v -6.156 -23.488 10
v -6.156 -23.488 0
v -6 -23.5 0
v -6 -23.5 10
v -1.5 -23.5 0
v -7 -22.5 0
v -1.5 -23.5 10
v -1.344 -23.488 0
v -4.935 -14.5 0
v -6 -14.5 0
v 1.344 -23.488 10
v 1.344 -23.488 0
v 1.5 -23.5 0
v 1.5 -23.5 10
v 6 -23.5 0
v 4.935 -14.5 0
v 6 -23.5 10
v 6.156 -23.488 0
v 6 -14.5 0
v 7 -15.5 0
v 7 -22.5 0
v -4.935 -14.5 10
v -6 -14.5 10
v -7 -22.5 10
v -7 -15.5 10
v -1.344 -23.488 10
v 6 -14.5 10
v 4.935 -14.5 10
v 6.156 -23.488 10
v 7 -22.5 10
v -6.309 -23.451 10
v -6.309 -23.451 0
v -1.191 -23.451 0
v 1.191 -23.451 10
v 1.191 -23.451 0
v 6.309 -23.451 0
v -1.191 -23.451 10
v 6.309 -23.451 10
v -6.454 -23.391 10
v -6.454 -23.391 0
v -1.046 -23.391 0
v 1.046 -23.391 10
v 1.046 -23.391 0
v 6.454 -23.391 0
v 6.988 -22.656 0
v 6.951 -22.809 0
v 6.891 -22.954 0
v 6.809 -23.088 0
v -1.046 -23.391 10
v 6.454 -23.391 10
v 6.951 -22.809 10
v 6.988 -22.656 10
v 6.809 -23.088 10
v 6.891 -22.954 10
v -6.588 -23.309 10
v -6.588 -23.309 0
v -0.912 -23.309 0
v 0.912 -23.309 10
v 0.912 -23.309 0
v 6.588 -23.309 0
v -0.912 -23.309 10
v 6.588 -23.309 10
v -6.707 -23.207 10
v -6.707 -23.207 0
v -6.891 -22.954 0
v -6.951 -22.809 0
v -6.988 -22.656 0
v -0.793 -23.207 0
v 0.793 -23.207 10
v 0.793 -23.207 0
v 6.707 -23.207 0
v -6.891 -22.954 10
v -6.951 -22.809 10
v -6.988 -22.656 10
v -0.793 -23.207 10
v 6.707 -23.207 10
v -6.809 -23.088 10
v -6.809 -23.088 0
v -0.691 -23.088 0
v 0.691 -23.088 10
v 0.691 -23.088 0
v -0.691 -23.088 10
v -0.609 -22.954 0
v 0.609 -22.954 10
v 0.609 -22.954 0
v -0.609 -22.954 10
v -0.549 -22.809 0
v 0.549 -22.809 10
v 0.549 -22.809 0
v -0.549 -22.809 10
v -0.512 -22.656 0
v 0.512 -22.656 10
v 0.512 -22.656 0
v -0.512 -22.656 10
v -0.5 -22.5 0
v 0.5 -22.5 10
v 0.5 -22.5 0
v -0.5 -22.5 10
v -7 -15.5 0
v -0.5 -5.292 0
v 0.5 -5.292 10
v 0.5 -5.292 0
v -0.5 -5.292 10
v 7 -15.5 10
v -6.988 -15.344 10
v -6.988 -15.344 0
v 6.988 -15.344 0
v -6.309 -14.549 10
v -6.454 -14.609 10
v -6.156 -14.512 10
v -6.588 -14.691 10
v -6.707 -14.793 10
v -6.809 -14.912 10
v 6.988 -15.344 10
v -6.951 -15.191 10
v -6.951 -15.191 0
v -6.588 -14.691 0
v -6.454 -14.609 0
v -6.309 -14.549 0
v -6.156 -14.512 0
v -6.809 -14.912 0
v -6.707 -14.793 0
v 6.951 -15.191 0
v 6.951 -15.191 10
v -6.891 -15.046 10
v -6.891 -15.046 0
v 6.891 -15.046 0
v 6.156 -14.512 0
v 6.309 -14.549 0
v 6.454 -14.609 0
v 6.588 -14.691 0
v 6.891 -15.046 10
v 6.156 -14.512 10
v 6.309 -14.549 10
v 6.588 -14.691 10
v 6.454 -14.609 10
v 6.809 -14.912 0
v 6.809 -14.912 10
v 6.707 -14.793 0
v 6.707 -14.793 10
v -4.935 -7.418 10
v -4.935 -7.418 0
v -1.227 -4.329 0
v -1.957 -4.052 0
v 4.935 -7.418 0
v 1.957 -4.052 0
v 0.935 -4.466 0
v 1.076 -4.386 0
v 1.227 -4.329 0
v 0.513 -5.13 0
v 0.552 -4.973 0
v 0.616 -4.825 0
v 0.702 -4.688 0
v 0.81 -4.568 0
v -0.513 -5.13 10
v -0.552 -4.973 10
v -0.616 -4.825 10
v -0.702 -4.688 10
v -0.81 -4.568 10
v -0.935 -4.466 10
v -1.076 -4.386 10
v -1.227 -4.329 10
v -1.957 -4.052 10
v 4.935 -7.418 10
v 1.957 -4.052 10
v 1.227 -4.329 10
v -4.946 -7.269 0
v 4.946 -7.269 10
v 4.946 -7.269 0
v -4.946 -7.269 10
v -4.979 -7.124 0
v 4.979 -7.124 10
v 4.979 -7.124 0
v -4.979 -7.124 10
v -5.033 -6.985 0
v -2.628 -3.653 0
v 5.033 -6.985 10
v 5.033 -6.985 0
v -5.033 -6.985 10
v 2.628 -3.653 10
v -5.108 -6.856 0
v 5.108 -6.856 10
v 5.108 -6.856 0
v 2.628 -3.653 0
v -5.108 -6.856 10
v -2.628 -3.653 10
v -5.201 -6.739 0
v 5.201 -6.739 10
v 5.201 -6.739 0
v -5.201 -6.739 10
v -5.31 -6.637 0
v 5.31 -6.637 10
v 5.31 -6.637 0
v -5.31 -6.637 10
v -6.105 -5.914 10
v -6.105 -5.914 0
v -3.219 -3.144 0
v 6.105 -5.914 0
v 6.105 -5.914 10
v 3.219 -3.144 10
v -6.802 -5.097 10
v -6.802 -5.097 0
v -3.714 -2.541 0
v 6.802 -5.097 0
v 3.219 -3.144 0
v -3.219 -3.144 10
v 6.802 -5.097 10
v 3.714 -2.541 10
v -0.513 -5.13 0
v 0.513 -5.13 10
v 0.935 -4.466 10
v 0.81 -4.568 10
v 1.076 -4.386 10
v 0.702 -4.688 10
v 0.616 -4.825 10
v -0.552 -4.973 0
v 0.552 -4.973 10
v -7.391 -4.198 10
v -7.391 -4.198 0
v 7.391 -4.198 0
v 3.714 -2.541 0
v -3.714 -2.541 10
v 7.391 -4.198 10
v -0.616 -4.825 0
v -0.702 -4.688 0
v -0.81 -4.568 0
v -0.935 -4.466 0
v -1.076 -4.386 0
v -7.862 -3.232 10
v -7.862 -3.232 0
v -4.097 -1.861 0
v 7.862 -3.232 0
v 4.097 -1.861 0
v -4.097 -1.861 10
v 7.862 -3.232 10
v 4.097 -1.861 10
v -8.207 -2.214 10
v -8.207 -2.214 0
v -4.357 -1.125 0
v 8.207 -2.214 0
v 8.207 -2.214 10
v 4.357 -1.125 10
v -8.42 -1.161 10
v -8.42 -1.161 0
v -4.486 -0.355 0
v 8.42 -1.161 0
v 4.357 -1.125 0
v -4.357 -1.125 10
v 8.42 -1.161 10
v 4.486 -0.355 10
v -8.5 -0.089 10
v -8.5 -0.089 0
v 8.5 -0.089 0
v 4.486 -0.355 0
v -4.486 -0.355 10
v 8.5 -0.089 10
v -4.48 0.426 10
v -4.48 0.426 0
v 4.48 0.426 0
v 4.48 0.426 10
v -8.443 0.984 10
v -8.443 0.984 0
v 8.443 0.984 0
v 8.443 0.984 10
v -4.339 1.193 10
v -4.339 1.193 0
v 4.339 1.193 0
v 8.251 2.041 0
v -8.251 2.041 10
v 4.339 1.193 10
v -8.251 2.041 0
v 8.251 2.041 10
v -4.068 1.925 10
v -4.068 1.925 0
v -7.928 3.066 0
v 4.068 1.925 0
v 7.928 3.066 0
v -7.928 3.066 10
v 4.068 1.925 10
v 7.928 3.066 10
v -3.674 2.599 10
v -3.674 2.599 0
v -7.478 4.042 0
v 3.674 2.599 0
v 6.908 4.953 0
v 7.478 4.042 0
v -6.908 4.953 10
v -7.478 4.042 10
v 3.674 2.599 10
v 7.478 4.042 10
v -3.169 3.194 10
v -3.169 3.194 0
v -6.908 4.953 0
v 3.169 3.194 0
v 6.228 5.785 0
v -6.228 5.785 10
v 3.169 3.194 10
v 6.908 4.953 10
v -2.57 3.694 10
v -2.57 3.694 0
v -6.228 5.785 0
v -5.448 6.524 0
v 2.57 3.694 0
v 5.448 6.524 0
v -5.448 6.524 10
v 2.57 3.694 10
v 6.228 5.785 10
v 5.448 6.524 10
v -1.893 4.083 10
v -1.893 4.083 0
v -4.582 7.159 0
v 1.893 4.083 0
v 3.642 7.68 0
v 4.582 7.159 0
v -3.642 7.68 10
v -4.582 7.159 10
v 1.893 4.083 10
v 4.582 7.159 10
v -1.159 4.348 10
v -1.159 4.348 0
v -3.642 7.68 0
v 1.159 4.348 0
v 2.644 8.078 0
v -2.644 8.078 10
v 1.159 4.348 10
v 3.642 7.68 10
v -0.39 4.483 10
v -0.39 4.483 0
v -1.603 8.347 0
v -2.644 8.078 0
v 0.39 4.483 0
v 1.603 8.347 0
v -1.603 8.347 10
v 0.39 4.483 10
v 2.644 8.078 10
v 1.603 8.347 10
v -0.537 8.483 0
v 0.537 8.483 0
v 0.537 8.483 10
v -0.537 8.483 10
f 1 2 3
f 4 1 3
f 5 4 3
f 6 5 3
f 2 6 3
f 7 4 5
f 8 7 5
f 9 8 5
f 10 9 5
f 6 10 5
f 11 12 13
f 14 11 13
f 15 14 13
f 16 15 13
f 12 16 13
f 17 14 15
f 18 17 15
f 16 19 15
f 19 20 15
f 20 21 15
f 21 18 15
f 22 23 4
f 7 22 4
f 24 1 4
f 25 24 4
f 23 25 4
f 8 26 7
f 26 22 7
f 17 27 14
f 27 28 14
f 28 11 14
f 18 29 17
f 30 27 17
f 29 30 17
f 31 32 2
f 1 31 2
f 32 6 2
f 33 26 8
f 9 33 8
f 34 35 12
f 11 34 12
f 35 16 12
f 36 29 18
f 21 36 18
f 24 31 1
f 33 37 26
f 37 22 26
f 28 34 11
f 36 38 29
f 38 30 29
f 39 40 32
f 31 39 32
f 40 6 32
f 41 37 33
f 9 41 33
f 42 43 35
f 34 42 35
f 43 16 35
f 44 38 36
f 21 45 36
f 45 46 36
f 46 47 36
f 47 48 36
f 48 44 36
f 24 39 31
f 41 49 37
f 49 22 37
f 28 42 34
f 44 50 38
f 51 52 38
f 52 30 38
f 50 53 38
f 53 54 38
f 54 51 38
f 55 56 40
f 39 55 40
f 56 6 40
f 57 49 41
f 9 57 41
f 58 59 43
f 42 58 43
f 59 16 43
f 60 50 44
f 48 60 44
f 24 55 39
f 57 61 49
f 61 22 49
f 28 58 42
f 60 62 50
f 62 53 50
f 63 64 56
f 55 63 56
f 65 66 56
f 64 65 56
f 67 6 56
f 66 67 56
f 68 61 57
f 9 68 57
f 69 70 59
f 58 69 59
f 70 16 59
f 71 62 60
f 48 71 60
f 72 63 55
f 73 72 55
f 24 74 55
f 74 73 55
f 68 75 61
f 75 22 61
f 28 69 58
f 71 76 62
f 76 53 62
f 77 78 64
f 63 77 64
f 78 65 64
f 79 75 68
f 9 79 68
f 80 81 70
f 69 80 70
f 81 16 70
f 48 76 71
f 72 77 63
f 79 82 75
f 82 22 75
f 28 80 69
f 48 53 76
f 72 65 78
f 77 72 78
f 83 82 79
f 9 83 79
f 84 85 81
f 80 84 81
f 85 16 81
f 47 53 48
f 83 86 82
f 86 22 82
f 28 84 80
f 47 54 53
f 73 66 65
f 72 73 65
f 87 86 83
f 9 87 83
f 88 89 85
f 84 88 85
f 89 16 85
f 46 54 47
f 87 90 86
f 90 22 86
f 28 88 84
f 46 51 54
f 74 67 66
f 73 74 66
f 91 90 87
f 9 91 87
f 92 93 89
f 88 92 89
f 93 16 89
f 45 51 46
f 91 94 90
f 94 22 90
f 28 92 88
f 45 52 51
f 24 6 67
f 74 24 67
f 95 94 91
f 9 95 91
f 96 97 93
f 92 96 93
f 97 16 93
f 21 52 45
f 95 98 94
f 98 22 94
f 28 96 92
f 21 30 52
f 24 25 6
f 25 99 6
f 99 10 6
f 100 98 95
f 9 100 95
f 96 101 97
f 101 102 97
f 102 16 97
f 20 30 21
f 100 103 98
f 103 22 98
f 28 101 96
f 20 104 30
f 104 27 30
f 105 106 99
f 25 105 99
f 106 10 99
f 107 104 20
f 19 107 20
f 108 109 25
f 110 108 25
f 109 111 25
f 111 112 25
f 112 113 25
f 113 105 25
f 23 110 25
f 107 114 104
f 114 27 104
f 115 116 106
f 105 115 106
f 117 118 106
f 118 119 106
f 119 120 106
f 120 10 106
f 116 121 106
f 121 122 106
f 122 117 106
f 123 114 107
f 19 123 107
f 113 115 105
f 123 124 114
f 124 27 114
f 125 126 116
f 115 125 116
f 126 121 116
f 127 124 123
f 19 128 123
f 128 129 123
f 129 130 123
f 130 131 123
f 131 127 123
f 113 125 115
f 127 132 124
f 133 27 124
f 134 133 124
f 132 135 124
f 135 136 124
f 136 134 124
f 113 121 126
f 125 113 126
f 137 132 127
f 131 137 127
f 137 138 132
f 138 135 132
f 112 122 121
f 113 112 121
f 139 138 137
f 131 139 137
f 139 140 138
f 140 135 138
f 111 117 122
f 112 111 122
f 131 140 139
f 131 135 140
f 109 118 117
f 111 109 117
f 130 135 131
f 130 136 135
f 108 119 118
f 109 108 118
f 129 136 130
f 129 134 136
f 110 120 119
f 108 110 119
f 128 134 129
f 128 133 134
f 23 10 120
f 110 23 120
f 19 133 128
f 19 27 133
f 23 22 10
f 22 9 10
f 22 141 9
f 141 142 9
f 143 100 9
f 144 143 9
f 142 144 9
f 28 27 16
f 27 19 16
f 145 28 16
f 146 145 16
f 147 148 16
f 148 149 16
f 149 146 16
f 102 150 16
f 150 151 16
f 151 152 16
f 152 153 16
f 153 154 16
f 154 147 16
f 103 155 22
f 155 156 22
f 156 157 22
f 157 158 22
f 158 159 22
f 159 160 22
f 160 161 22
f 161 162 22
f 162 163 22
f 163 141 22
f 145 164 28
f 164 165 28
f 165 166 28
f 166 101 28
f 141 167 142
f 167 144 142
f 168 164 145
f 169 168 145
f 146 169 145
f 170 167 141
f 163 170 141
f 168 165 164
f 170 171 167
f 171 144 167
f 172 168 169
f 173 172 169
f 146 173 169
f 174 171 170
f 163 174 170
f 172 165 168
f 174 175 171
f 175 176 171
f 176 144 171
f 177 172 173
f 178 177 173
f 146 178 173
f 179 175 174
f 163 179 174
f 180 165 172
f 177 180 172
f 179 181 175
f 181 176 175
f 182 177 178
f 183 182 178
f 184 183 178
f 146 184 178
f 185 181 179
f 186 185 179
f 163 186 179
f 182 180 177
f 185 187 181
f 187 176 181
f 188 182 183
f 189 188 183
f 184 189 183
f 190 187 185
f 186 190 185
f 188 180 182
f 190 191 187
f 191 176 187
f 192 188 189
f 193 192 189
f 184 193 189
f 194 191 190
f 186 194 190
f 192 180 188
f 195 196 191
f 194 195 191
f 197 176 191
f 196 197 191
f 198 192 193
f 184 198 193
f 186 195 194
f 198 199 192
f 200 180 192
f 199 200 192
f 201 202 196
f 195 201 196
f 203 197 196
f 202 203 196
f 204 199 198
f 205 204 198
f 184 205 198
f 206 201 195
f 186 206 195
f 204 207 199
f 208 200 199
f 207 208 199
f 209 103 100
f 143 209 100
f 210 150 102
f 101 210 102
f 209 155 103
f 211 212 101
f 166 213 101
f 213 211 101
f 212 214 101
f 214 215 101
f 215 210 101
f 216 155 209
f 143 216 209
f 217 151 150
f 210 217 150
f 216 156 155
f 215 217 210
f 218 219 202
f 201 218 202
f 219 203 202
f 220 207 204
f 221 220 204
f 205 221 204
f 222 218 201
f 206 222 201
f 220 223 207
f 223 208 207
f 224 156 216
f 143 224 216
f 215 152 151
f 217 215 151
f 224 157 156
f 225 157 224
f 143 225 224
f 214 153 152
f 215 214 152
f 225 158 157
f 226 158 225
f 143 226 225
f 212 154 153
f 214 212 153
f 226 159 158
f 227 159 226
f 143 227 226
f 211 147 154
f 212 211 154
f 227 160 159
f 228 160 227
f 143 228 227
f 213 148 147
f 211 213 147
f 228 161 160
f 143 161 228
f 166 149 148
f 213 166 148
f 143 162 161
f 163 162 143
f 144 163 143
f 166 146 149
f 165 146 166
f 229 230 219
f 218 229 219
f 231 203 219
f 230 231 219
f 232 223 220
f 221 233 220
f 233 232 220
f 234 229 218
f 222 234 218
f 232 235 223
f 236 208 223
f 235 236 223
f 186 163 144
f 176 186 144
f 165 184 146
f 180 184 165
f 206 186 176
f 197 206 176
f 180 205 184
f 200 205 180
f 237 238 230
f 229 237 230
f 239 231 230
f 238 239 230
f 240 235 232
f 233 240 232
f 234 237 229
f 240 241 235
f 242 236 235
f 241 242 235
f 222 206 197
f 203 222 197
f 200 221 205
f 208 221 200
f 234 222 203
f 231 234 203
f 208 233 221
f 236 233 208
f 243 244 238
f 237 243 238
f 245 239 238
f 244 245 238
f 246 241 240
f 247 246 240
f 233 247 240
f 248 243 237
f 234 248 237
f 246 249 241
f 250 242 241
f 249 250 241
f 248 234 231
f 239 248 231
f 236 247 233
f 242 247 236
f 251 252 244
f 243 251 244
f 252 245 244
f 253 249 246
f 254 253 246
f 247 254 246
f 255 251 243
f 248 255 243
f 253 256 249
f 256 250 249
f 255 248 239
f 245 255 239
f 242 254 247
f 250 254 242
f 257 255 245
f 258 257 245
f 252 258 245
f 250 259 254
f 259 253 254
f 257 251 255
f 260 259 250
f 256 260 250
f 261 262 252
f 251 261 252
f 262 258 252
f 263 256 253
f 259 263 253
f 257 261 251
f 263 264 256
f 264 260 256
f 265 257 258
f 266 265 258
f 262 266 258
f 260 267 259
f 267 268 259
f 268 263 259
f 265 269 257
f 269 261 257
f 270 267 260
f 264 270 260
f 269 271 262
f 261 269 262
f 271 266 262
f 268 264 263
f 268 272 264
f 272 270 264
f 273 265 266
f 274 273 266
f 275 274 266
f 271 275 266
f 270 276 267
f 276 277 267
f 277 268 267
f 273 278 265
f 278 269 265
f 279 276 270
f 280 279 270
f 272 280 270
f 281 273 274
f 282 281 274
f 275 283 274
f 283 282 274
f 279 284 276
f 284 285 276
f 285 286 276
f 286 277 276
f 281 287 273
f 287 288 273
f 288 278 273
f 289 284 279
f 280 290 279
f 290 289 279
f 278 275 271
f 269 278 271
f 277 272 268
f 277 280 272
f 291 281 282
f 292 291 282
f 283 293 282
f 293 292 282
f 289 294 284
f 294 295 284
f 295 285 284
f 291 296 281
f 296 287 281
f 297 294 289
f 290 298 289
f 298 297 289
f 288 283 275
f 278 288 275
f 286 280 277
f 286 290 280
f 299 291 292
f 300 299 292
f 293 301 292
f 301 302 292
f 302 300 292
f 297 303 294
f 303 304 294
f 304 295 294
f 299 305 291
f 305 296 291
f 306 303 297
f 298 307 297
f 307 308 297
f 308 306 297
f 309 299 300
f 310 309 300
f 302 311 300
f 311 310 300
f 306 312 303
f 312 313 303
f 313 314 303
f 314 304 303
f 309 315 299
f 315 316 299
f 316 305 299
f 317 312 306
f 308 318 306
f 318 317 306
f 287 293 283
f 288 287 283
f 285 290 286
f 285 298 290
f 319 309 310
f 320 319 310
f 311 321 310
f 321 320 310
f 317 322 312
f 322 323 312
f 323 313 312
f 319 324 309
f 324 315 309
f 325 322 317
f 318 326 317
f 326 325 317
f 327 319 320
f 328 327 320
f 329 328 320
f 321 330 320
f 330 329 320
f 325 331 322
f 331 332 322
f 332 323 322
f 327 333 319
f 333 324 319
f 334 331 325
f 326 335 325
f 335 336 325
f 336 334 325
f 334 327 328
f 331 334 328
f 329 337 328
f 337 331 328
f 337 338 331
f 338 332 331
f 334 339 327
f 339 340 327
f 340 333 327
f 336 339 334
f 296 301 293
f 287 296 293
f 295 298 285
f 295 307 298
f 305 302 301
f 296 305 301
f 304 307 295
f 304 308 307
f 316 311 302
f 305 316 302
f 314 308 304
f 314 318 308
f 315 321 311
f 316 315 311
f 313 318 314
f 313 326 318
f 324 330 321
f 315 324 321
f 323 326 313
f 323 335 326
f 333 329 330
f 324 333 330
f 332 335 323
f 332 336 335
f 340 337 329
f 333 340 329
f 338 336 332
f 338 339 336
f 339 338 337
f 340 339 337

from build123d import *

# Parameters (mm, degrees)
SALIENTE_EXTRUIR1_DEPTH = 10


with BuildPart() as part:
    # Croquis1 → Saliente-Extruir1 (new body)
    with BuildSketch(Plane.XY):
        with BuildLine():
            Line((1.5, -23.5), (6, -23.5))
            ThreePointArc((6, -23.5), (6.707106781, -23.207106781), (7, -22.5))
            Line((7, -22.5), (7, -15.5))
            ThreePointArc((7, -15.5), (6.707106781, -14.792893219), (6, -14.5))
            Line((6, -14.5), (4.934593139, -14.5))
            Line((4.934593139, -14.5), (4.934593139, -7.41826154))
            ThreePointArc((4.934593139, -7.41826154), (5.033290189, -6.985072213), (5.309899124, -6.637391904))
            ThreePointArc((5.309899124, -6.637391904), (0, 8.5), (-5.309899124, -6.637391904))
            ThreePointArc((-5.309899124, -6.637391904), (-5.033290189, -6.985072213), (-4.934593139, -7.41826154))
            Line((-4.934593139, -7.41826154), (-4.934593139, -14.5))
            Line((-4.934593139, -14.5), (-6, -14.5))
            ThreePointArc((-6, -14.5), (-6.707106781, -14.792893219), (-7, -15.5))
            Line((-7, -15.5), (-7, -22.5))
            ThreePointArc((-7, -22.5), (-6.707106781, -23.207106781), (-6, -23.5))
            Line((-6, -23.5), (-1.5, -23.5))
            ThreePointArc((-1.5, -23.5), (-0.792893219, -23.207106781), (-0.5, -22.5))
            Line((-0.5, -22.5), (-0.5, -5.291502622))
            ThreePointArc((-0.5, -5.291502622), (-0.702275965, -4.688479933), (-1.227272727, -4.329411236))
            ThreePointArc((-1.227272727, -4.329411236), (0, 4.5), (1.227272727, -4.329411236))
            ThreePointArc((1.227272727, -4.329411236), (0.702275965, -4.688479933), (0.5, -5.291502622))
            Line((0.5, -5.291502622), (0.5, -22.5))
            ThreePointArc((0.5, -22.5), (0.792893219, -23.207106781), (1.5, -23.5))
        make_face()
    extrude(amount=SALIENTE_EXTRUIR1_DEPTH)


solid = part.part
